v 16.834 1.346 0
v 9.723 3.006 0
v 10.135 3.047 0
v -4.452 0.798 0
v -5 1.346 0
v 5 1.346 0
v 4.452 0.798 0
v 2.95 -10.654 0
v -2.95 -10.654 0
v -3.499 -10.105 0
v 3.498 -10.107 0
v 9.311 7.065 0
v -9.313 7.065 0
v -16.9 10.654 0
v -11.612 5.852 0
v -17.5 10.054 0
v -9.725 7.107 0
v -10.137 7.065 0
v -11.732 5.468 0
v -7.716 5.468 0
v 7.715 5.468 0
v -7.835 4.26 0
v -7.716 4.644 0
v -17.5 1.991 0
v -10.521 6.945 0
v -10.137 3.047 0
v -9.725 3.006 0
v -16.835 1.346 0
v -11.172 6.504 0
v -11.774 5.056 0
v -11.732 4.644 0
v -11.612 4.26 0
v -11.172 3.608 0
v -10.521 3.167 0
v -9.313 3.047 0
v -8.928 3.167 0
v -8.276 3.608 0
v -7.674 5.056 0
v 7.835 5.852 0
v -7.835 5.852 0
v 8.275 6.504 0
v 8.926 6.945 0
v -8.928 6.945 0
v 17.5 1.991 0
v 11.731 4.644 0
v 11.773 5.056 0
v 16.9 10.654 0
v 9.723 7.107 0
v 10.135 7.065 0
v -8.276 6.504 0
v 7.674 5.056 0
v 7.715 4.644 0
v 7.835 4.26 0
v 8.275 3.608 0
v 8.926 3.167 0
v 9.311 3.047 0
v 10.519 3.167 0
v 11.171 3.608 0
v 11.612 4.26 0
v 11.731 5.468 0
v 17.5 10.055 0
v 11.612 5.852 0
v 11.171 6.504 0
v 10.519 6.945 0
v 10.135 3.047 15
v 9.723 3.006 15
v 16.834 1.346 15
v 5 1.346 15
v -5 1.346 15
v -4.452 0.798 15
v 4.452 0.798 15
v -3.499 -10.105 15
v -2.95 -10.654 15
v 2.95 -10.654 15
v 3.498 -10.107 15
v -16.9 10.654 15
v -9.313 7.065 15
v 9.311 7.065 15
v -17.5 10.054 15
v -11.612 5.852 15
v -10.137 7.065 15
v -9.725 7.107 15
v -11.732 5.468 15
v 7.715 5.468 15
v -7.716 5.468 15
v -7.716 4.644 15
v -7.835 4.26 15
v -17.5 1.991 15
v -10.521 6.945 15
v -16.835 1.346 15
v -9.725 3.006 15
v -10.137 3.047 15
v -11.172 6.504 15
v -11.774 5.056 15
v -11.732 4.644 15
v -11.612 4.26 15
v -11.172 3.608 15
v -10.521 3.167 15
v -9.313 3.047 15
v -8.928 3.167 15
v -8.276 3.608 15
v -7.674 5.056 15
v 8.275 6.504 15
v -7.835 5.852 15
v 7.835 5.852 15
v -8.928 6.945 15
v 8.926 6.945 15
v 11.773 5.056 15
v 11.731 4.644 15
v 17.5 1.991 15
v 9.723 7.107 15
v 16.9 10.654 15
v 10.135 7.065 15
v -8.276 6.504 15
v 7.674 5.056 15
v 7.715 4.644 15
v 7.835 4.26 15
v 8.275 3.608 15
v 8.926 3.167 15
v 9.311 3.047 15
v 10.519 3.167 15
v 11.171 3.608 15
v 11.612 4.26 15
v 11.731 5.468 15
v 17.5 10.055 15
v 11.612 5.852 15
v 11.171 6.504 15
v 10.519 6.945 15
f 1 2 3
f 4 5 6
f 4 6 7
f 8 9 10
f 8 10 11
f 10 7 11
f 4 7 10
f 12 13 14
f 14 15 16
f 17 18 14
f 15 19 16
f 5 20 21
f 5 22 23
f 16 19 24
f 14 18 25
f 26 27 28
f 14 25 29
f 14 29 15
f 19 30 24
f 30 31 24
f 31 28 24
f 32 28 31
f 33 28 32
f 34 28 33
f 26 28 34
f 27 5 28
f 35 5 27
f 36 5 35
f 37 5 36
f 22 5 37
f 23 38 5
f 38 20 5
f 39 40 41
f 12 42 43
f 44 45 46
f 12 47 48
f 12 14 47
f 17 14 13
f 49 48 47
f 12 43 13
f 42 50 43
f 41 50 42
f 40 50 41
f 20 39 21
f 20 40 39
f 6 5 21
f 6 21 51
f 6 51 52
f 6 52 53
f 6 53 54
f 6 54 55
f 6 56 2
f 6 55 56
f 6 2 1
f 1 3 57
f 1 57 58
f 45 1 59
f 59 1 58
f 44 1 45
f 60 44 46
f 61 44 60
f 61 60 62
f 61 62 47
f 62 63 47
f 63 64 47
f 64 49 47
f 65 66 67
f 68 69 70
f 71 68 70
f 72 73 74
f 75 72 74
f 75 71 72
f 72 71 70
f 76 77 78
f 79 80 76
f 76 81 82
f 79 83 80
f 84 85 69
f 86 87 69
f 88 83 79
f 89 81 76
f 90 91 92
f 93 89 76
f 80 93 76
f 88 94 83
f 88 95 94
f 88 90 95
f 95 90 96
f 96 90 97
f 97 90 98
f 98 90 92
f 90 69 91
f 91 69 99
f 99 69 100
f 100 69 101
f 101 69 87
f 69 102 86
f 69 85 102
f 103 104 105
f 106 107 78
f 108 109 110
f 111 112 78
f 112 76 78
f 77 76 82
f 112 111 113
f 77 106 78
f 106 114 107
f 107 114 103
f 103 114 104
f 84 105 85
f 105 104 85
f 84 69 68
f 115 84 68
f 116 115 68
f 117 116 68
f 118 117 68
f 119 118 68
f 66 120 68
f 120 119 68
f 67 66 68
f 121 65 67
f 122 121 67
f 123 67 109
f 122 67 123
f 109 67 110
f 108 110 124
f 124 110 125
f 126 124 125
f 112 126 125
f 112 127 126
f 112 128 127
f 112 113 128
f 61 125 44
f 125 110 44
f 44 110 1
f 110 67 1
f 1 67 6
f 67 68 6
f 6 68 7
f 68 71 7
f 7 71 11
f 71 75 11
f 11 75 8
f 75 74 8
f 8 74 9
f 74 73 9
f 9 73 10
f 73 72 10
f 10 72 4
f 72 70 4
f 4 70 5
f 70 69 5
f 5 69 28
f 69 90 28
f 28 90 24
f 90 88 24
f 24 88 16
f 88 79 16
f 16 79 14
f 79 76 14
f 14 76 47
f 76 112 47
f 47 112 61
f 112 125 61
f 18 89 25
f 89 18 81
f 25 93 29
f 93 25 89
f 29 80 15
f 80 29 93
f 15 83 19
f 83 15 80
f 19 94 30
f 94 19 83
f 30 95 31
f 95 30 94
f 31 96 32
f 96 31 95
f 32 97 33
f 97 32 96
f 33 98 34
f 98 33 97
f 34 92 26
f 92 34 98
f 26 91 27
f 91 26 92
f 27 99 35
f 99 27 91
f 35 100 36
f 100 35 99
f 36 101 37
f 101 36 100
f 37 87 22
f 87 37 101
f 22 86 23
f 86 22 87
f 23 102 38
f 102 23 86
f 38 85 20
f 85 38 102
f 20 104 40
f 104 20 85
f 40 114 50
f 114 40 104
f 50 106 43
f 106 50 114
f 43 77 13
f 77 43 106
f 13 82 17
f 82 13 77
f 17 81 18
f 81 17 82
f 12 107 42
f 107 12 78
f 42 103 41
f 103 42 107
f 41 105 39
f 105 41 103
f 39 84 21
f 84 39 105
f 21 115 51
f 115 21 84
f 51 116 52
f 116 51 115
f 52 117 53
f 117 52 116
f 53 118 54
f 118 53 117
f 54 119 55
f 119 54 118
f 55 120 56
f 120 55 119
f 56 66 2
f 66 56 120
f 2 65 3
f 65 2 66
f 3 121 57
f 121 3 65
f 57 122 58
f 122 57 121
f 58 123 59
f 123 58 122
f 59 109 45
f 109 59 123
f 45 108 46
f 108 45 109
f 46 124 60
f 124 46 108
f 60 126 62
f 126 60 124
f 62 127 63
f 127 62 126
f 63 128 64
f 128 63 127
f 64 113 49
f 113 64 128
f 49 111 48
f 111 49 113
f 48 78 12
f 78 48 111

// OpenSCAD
// Generated by inkscape 0.92.4 + inkscape-paths2openscad 0.25
// Sat May 25 20:40:04 2019 from "stollen35x21+05p.svg"

// Module names are of the form poly_<inkscape-path-id>().  As a result,
// you can associate a polygon in this OpenSCAD program with the corresponding
// SVG element in the Inkscape document by looking for the XML element with
// the attribute id="inkscape-path-id".

// fudge value is used to ensure that subtracted solids are a tad taller
// in the z dimension than the polygon being subtracted from.  This helps
// keep the resulting .stl file manifold.
fudge = 0.1;
zsize = 15;
line_fn = 4;
min_line_width = 1.0;
line_width_scale = 1.0;
function min_line_mm(w) = max(min_line_width, w * line_width_scale) * 96/25.4;


path972_0_center = [0.000000,0.000000];
path972_0_points = [[-63.872077,-40.267583],[-66.141609,-37.998052],[-66.141609,-7.523442],[-63.627937,-5.087891],[-18.897465,-5.087891],[-16.827149,-3.017579],[-13.223634,38.193363],[-11.151368,40.267583],[11.149416,40.267583],[13.219728,38.199221],[16.825193,-3.015625],[18.897463,-5.087891],[63.625985,-5.087891],[66.141609,-7.523442],[66.141609,-38.001960],[63.875986,-40.267583],[-63.872077,-40.267583],[-36.754888,-26.859378],[-35.197028,-26.701267],[-33.743979,-26.248041],[-31.279185,-24.583254],[-29.614254,-22.119028],[-29.161033,-20.666505],[-29.002933,-19.109377],[-29.161033,-17.552250],[-29.614254,-16.099728],[-31.279185,-13.635503],[-33.743979,-11.970716],[-35.197028,-11.517490],[-36.754888,-11.359379],[-38.312412,-11.517493],[-39.764576,-11.970720],[-42.226681,-13.635509],[-43.888924,-16.099732],[-44.341261,-17.552252],[-44.499028,-19.109377],[-44.341261,-20.666502],[-43.888924,-22.119023],[-42.226681,-24.583247],[-39.764576,-26.248036],[-38.312412,-26.701263],[-36.754888,-26.859378],[-36.754888,-26.859378],[36.747074,-26.859378],[38.304852,-26.701267],[39.757681,-26.248041],[42.221803,-24.583254],[43.886062,-22.119028],[44.339060,-20.666505],[44.497076,-19.109377],[44.339060,-17.552250],[43.886062,-16.099728],[42.221803,-13.635503],[39.757681,-11.970716],[38.304852,-11.517490],[36.747074,-11.359379],[35.189549,-11.517493],[33.737385,-11.970720],[31.275279,-13.635509],[29.613036,-16.099732],[29.160700,-17.552252],[29.002935,-19.109377],[29.160700,-20.666502],[29.613036,-22.119023],[31.275279,-24.583247],[33.737385,-26.248036],[35.189549,-26.701263],[36.747074,-26.859378],[36.747074,-26.859378]];
path972_0_paths = [[0,1,2,3,4,5,6,7,8,9,10,11,12,13,14,15,16],
				[17,18,19,20,21,22,23,24,25,26,27,28,29,30,31,32,33,34,35,36,37,38,39,40,41,42],
				[43,44,45,46,47,48,49,50,51,52,53,54,55,56,57,58,59,60,61,62,63,64,65,66,67,68]];
module poly_path972(h, w, s, res=line_fn)
{
  scale([25.4/96, -25.4/96, 1]) union()
  {
    translate (path972_0_center) linear_extrude(height=h, convexity=10, scale=0.01*s)
      translate (-path972_0_center) polygon(path972_0_points, path972_0_paths);
  }
}

module stollen35x2105p(h)
{
  difference()
  {
    union()
    {
      translate ([0,0,0]) poly_path972(h, min_line_mm(0.19999999), 100.0);
    }
    union()
    {
    }
  }
}

stollen35x2105p(zsize);
